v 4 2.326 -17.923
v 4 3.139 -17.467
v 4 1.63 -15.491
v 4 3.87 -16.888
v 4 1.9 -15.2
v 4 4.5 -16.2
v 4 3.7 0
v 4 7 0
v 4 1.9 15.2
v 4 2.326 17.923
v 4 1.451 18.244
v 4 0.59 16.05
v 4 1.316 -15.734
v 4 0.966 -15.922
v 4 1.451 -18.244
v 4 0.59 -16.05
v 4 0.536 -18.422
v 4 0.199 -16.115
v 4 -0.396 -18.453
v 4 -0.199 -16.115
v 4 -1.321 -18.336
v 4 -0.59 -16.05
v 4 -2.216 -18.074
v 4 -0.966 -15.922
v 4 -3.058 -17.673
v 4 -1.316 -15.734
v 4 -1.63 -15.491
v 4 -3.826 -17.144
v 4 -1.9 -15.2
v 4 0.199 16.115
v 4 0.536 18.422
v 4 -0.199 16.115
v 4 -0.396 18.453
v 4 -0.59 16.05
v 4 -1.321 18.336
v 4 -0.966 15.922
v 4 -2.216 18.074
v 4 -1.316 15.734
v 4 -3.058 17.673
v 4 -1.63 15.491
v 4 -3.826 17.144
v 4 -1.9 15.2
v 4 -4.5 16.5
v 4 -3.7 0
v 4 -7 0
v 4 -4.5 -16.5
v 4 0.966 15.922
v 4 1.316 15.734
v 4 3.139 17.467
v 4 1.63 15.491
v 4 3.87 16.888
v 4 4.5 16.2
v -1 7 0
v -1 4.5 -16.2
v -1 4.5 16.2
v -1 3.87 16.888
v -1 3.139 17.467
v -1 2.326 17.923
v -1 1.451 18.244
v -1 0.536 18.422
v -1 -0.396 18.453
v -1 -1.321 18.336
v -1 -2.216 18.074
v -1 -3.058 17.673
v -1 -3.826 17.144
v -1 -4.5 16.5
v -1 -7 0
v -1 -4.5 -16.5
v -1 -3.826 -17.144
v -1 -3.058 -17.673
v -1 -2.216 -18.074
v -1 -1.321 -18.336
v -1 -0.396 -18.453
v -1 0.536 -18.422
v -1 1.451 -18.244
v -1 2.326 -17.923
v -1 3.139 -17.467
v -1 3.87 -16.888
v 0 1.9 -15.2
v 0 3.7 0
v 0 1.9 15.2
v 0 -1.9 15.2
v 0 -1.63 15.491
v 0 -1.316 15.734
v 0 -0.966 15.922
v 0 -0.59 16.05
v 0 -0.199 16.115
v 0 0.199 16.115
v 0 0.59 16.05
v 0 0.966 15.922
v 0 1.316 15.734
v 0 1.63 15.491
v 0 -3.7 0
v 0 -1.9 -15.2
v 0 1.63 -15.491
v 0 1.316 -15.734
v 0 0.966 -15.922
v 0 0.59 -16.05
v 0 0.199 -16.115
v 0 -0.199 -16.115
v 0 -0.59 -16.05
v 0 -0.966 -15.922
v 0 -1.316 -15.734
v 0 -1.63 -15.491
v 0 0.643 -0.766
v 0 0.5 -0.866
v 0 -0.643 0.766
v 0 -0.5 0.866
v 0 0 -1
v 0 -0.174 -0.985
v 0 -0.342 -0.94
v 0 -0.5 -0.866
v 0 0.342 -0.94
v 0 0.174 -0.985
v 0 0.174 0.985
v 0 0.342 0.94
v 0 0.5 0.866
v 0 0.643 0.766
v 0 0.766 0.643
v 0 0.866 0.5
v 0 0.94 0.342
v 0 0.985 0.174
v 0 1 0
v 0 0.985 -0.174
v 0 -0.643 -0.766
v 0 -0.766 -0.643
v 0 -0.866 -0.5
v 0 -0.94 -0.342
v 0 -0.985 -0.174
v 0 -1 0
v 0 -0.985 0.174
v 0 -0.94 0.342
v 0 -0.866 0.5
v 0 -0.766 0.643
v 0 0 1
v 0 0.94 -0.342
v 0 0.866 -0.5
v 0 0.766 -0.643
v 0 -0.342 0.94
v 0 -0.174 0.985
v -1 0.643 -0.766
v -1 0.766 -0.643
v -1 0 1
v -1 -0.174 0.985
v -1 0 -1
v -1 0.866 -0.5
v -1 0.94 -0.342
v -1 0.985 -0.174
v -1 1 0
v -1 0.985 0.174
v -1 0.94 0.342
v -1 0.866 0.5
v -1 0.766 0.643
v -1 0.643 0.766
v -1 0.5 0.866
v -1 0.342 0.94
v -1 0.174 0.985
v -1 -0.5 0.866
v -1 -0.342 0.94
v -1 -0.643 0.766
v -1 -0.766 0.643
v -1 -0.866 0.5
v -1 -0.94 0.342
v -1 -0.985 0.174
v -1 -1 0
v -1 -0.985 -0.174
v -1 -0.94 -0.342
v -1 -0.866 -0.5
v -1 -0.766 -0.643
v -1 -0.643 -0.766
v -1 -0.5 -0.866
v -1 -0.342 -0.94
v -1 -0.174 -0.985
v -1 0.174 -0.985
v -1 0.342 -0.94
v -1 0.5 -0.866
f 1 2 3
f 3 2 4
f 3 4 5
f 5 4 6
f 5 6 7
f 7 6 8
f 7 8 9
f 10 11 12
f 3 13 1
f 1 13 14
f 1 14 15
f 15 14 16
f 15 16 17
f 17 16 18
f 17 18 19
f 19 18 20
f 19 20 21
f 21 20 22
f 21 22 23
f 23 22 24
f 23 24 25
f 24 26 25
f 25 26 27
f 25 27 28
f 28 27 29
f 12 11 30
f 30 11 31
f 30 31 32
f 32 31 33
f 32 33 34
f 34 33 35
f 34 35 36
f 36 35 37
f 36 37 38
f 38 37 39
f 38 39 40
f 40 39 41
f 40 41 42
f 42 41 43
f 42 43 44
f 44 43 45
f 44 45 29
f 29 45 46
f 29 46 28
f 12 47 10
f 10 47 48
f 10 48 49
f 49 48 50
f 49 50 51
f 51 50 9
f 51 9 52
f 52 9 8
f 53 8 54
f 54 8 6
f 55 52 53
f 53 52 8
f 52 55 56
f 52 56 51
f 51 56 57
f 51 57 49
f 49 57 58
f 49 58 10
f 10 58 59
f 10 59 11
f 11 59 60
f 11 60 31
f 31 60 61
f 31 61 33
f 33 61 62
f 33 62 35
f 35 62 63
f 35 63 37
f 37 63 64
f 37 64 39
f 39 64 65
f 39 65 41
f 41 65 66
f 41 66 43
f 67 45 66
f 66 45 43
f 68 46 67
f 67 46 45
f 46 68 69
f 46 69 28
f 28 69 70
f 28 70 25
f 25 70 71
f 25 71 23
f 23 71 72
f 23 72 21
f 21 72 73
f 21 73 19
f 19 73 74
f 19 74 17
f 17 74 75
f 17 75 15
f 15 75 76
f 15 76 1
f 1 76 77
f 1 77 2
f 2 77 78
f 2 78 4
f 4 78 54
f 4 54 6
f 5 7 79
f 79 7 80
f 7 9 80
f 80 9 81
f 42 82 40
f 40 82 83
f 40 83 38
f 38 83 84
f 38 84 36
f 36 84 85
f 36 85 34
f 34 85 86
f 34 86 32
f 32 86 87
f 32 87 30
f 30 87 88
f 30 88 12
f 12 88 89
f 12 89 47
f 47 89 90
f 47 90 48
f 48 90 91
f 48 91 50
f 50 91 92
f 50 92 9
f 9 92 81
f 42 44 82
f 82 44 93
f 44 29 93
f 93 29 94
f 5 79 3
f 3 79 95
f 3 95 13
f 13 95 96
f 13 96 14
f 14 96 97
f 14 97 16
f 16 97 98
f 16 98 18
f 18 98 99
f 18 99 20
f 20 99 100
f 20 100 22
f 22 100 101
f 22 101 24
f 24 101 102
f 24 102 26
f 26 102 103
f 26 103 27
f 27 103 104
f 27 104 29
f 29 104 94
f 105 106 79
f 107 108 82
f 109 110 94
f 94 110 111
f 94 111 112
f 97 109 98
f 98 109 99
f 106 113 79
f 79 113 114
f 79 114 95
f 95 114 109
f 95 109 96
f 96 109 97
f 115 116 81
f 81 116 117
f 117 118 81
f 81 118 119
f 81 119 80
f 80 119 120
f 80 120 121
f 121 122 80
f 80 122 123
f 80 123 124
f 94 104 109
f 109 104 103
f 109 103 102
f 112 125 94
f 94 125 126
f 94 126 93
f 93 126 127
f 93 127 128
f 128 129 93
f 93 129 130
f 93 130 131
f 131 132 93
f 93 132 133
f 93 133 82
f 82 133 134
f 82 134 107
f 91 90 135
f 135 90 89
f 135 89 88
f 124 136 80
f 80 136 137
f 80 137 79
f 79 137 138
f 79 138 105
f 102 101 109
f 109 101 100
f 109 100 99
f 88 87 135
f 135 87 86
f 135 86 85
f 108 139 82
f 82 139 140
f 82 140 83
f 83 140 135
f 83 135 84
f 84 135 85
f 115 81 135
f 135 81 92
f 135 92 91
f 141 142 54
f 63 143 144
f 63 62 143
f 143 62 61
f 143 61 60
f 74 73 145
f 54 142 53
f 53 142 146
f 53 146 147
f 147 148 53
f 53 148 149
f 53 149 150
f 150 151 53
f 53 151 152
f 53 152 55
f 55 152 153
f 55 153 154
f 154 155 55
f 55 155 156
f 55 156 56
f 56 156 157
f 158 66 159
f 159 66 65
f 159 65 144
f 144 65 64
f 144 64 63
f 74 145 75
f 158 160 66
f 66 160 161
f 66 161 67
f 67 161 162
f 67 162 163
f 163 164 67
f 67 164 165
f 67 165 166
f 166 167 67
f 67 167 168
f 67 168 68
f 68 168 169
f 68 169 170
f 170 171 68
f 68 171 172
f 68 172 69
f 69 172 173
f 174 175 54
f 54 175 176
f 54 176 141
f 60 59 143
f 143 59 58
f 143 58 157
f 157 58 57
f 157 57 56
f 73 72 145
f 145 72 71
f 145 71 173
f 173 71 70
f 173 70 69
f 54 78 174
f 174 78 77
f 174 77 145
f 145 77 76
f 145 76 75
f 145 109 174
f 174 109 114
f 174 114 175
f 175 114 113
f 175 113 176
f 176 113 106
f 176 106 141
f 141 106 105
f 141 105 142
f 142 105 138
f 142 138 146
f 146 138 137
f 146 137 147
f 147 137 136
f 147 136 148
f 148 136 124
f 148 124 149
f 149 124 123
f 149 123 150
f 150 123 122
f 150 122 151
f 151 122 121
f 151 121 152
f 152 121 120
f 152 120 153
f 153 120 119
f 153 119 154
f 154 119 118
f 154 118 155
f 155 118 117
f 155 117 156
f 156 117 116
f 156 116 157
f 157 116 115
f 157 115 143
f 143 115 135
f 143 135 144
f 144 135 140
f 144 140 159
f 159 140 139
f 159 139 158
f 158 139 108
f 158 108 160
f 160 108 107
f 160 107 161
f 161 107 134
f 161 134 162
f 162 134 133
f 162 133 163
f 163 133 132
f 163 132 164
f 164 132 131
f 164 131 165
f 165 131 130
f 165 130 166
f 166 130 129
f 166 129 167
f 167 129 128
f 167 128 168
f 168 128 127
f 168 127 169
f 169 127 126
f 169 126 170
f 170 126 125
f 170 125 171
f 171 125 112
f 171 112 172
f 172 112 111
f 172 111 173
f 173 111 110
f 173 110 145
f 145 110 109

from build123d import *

# Parameters (mm, degrees)
BOSS_EXTRUDE1_DEPTH = 4
SKETCH2_R           = 1
BOSS_EXTRUDE2_DEPTH = 1


with BuildPart() as part:
    # Sketch1 → Boss-Extrude1 (new body)
    with BuildSketch(Plane(origin=(0, 0, 0), x_dir=(0, 0, -1), z_dir=(1, 0, 0))):
        with BuildLine():
            Line((0, 7), (-16.2, 4.5))
            ThreePointArc((-16.2, 4.5), (-18.456321812, 0.070210727), (-16.5, -4.5))
            Line((-16.5, -4.5), (0, -7))
            Line((0, -7), (16.5, -4.5))
            ThreePointArc((16.5, -4.5), (18.456321812, 0.070210727), (16.2, 4.5))
            Line((16.2, 4.5), (0, 7))
        make_face()
        with BuildLine():
            Line((0, 3.7), (-15.2, 1.9))
            ThreePointArc((-15.2, 1.9), (-16.123290742, 0), (-15.2, -1.9))
            Line((-15.2, -1.9), (0, -3.7))
            Line((0, -3.7), (15.2, -1.9))
            ThreePointArc((15.2, -1.9), (16.123290742, 0), (15.2, 1.9))
            Line((15.2, 1.9), (0, 3.7))
        make_face(mode=Mode.SUBTRACT)
    extrude(amount=BOSS_EXTRUDE1_DEPTH)

    # Sketch2 → Boss-Extrude2 (add)
    with BuildSketch(Plane(origin=(0, 0, 0), x_dir=(0, 0, -1), z_dir=(1, 0, 0))):
        with BuildLine():
            Line((0, 7), (-16.2, 4.5))
            ThreePointArc((-16.2, 4.5), (-18.456321812, 0.070210727), (-16.5, -4.5))
            Line((-16.5, -4.5), (0, -7))
            Line((0, -7), (16.5, -4.5))
            ThreePointArc((16.5, -4.5), (18.456321812, 0.070210727), (16.2, 4.5))
            Line((16.2, 4.5), (0, 7))
        make_face()
        Circle(SKETCH2_R, mode=Mode.SUBTRACT)
    extrude(amount=-BOSS_EXTRUDE2_DEPTH)


solid = part.part
